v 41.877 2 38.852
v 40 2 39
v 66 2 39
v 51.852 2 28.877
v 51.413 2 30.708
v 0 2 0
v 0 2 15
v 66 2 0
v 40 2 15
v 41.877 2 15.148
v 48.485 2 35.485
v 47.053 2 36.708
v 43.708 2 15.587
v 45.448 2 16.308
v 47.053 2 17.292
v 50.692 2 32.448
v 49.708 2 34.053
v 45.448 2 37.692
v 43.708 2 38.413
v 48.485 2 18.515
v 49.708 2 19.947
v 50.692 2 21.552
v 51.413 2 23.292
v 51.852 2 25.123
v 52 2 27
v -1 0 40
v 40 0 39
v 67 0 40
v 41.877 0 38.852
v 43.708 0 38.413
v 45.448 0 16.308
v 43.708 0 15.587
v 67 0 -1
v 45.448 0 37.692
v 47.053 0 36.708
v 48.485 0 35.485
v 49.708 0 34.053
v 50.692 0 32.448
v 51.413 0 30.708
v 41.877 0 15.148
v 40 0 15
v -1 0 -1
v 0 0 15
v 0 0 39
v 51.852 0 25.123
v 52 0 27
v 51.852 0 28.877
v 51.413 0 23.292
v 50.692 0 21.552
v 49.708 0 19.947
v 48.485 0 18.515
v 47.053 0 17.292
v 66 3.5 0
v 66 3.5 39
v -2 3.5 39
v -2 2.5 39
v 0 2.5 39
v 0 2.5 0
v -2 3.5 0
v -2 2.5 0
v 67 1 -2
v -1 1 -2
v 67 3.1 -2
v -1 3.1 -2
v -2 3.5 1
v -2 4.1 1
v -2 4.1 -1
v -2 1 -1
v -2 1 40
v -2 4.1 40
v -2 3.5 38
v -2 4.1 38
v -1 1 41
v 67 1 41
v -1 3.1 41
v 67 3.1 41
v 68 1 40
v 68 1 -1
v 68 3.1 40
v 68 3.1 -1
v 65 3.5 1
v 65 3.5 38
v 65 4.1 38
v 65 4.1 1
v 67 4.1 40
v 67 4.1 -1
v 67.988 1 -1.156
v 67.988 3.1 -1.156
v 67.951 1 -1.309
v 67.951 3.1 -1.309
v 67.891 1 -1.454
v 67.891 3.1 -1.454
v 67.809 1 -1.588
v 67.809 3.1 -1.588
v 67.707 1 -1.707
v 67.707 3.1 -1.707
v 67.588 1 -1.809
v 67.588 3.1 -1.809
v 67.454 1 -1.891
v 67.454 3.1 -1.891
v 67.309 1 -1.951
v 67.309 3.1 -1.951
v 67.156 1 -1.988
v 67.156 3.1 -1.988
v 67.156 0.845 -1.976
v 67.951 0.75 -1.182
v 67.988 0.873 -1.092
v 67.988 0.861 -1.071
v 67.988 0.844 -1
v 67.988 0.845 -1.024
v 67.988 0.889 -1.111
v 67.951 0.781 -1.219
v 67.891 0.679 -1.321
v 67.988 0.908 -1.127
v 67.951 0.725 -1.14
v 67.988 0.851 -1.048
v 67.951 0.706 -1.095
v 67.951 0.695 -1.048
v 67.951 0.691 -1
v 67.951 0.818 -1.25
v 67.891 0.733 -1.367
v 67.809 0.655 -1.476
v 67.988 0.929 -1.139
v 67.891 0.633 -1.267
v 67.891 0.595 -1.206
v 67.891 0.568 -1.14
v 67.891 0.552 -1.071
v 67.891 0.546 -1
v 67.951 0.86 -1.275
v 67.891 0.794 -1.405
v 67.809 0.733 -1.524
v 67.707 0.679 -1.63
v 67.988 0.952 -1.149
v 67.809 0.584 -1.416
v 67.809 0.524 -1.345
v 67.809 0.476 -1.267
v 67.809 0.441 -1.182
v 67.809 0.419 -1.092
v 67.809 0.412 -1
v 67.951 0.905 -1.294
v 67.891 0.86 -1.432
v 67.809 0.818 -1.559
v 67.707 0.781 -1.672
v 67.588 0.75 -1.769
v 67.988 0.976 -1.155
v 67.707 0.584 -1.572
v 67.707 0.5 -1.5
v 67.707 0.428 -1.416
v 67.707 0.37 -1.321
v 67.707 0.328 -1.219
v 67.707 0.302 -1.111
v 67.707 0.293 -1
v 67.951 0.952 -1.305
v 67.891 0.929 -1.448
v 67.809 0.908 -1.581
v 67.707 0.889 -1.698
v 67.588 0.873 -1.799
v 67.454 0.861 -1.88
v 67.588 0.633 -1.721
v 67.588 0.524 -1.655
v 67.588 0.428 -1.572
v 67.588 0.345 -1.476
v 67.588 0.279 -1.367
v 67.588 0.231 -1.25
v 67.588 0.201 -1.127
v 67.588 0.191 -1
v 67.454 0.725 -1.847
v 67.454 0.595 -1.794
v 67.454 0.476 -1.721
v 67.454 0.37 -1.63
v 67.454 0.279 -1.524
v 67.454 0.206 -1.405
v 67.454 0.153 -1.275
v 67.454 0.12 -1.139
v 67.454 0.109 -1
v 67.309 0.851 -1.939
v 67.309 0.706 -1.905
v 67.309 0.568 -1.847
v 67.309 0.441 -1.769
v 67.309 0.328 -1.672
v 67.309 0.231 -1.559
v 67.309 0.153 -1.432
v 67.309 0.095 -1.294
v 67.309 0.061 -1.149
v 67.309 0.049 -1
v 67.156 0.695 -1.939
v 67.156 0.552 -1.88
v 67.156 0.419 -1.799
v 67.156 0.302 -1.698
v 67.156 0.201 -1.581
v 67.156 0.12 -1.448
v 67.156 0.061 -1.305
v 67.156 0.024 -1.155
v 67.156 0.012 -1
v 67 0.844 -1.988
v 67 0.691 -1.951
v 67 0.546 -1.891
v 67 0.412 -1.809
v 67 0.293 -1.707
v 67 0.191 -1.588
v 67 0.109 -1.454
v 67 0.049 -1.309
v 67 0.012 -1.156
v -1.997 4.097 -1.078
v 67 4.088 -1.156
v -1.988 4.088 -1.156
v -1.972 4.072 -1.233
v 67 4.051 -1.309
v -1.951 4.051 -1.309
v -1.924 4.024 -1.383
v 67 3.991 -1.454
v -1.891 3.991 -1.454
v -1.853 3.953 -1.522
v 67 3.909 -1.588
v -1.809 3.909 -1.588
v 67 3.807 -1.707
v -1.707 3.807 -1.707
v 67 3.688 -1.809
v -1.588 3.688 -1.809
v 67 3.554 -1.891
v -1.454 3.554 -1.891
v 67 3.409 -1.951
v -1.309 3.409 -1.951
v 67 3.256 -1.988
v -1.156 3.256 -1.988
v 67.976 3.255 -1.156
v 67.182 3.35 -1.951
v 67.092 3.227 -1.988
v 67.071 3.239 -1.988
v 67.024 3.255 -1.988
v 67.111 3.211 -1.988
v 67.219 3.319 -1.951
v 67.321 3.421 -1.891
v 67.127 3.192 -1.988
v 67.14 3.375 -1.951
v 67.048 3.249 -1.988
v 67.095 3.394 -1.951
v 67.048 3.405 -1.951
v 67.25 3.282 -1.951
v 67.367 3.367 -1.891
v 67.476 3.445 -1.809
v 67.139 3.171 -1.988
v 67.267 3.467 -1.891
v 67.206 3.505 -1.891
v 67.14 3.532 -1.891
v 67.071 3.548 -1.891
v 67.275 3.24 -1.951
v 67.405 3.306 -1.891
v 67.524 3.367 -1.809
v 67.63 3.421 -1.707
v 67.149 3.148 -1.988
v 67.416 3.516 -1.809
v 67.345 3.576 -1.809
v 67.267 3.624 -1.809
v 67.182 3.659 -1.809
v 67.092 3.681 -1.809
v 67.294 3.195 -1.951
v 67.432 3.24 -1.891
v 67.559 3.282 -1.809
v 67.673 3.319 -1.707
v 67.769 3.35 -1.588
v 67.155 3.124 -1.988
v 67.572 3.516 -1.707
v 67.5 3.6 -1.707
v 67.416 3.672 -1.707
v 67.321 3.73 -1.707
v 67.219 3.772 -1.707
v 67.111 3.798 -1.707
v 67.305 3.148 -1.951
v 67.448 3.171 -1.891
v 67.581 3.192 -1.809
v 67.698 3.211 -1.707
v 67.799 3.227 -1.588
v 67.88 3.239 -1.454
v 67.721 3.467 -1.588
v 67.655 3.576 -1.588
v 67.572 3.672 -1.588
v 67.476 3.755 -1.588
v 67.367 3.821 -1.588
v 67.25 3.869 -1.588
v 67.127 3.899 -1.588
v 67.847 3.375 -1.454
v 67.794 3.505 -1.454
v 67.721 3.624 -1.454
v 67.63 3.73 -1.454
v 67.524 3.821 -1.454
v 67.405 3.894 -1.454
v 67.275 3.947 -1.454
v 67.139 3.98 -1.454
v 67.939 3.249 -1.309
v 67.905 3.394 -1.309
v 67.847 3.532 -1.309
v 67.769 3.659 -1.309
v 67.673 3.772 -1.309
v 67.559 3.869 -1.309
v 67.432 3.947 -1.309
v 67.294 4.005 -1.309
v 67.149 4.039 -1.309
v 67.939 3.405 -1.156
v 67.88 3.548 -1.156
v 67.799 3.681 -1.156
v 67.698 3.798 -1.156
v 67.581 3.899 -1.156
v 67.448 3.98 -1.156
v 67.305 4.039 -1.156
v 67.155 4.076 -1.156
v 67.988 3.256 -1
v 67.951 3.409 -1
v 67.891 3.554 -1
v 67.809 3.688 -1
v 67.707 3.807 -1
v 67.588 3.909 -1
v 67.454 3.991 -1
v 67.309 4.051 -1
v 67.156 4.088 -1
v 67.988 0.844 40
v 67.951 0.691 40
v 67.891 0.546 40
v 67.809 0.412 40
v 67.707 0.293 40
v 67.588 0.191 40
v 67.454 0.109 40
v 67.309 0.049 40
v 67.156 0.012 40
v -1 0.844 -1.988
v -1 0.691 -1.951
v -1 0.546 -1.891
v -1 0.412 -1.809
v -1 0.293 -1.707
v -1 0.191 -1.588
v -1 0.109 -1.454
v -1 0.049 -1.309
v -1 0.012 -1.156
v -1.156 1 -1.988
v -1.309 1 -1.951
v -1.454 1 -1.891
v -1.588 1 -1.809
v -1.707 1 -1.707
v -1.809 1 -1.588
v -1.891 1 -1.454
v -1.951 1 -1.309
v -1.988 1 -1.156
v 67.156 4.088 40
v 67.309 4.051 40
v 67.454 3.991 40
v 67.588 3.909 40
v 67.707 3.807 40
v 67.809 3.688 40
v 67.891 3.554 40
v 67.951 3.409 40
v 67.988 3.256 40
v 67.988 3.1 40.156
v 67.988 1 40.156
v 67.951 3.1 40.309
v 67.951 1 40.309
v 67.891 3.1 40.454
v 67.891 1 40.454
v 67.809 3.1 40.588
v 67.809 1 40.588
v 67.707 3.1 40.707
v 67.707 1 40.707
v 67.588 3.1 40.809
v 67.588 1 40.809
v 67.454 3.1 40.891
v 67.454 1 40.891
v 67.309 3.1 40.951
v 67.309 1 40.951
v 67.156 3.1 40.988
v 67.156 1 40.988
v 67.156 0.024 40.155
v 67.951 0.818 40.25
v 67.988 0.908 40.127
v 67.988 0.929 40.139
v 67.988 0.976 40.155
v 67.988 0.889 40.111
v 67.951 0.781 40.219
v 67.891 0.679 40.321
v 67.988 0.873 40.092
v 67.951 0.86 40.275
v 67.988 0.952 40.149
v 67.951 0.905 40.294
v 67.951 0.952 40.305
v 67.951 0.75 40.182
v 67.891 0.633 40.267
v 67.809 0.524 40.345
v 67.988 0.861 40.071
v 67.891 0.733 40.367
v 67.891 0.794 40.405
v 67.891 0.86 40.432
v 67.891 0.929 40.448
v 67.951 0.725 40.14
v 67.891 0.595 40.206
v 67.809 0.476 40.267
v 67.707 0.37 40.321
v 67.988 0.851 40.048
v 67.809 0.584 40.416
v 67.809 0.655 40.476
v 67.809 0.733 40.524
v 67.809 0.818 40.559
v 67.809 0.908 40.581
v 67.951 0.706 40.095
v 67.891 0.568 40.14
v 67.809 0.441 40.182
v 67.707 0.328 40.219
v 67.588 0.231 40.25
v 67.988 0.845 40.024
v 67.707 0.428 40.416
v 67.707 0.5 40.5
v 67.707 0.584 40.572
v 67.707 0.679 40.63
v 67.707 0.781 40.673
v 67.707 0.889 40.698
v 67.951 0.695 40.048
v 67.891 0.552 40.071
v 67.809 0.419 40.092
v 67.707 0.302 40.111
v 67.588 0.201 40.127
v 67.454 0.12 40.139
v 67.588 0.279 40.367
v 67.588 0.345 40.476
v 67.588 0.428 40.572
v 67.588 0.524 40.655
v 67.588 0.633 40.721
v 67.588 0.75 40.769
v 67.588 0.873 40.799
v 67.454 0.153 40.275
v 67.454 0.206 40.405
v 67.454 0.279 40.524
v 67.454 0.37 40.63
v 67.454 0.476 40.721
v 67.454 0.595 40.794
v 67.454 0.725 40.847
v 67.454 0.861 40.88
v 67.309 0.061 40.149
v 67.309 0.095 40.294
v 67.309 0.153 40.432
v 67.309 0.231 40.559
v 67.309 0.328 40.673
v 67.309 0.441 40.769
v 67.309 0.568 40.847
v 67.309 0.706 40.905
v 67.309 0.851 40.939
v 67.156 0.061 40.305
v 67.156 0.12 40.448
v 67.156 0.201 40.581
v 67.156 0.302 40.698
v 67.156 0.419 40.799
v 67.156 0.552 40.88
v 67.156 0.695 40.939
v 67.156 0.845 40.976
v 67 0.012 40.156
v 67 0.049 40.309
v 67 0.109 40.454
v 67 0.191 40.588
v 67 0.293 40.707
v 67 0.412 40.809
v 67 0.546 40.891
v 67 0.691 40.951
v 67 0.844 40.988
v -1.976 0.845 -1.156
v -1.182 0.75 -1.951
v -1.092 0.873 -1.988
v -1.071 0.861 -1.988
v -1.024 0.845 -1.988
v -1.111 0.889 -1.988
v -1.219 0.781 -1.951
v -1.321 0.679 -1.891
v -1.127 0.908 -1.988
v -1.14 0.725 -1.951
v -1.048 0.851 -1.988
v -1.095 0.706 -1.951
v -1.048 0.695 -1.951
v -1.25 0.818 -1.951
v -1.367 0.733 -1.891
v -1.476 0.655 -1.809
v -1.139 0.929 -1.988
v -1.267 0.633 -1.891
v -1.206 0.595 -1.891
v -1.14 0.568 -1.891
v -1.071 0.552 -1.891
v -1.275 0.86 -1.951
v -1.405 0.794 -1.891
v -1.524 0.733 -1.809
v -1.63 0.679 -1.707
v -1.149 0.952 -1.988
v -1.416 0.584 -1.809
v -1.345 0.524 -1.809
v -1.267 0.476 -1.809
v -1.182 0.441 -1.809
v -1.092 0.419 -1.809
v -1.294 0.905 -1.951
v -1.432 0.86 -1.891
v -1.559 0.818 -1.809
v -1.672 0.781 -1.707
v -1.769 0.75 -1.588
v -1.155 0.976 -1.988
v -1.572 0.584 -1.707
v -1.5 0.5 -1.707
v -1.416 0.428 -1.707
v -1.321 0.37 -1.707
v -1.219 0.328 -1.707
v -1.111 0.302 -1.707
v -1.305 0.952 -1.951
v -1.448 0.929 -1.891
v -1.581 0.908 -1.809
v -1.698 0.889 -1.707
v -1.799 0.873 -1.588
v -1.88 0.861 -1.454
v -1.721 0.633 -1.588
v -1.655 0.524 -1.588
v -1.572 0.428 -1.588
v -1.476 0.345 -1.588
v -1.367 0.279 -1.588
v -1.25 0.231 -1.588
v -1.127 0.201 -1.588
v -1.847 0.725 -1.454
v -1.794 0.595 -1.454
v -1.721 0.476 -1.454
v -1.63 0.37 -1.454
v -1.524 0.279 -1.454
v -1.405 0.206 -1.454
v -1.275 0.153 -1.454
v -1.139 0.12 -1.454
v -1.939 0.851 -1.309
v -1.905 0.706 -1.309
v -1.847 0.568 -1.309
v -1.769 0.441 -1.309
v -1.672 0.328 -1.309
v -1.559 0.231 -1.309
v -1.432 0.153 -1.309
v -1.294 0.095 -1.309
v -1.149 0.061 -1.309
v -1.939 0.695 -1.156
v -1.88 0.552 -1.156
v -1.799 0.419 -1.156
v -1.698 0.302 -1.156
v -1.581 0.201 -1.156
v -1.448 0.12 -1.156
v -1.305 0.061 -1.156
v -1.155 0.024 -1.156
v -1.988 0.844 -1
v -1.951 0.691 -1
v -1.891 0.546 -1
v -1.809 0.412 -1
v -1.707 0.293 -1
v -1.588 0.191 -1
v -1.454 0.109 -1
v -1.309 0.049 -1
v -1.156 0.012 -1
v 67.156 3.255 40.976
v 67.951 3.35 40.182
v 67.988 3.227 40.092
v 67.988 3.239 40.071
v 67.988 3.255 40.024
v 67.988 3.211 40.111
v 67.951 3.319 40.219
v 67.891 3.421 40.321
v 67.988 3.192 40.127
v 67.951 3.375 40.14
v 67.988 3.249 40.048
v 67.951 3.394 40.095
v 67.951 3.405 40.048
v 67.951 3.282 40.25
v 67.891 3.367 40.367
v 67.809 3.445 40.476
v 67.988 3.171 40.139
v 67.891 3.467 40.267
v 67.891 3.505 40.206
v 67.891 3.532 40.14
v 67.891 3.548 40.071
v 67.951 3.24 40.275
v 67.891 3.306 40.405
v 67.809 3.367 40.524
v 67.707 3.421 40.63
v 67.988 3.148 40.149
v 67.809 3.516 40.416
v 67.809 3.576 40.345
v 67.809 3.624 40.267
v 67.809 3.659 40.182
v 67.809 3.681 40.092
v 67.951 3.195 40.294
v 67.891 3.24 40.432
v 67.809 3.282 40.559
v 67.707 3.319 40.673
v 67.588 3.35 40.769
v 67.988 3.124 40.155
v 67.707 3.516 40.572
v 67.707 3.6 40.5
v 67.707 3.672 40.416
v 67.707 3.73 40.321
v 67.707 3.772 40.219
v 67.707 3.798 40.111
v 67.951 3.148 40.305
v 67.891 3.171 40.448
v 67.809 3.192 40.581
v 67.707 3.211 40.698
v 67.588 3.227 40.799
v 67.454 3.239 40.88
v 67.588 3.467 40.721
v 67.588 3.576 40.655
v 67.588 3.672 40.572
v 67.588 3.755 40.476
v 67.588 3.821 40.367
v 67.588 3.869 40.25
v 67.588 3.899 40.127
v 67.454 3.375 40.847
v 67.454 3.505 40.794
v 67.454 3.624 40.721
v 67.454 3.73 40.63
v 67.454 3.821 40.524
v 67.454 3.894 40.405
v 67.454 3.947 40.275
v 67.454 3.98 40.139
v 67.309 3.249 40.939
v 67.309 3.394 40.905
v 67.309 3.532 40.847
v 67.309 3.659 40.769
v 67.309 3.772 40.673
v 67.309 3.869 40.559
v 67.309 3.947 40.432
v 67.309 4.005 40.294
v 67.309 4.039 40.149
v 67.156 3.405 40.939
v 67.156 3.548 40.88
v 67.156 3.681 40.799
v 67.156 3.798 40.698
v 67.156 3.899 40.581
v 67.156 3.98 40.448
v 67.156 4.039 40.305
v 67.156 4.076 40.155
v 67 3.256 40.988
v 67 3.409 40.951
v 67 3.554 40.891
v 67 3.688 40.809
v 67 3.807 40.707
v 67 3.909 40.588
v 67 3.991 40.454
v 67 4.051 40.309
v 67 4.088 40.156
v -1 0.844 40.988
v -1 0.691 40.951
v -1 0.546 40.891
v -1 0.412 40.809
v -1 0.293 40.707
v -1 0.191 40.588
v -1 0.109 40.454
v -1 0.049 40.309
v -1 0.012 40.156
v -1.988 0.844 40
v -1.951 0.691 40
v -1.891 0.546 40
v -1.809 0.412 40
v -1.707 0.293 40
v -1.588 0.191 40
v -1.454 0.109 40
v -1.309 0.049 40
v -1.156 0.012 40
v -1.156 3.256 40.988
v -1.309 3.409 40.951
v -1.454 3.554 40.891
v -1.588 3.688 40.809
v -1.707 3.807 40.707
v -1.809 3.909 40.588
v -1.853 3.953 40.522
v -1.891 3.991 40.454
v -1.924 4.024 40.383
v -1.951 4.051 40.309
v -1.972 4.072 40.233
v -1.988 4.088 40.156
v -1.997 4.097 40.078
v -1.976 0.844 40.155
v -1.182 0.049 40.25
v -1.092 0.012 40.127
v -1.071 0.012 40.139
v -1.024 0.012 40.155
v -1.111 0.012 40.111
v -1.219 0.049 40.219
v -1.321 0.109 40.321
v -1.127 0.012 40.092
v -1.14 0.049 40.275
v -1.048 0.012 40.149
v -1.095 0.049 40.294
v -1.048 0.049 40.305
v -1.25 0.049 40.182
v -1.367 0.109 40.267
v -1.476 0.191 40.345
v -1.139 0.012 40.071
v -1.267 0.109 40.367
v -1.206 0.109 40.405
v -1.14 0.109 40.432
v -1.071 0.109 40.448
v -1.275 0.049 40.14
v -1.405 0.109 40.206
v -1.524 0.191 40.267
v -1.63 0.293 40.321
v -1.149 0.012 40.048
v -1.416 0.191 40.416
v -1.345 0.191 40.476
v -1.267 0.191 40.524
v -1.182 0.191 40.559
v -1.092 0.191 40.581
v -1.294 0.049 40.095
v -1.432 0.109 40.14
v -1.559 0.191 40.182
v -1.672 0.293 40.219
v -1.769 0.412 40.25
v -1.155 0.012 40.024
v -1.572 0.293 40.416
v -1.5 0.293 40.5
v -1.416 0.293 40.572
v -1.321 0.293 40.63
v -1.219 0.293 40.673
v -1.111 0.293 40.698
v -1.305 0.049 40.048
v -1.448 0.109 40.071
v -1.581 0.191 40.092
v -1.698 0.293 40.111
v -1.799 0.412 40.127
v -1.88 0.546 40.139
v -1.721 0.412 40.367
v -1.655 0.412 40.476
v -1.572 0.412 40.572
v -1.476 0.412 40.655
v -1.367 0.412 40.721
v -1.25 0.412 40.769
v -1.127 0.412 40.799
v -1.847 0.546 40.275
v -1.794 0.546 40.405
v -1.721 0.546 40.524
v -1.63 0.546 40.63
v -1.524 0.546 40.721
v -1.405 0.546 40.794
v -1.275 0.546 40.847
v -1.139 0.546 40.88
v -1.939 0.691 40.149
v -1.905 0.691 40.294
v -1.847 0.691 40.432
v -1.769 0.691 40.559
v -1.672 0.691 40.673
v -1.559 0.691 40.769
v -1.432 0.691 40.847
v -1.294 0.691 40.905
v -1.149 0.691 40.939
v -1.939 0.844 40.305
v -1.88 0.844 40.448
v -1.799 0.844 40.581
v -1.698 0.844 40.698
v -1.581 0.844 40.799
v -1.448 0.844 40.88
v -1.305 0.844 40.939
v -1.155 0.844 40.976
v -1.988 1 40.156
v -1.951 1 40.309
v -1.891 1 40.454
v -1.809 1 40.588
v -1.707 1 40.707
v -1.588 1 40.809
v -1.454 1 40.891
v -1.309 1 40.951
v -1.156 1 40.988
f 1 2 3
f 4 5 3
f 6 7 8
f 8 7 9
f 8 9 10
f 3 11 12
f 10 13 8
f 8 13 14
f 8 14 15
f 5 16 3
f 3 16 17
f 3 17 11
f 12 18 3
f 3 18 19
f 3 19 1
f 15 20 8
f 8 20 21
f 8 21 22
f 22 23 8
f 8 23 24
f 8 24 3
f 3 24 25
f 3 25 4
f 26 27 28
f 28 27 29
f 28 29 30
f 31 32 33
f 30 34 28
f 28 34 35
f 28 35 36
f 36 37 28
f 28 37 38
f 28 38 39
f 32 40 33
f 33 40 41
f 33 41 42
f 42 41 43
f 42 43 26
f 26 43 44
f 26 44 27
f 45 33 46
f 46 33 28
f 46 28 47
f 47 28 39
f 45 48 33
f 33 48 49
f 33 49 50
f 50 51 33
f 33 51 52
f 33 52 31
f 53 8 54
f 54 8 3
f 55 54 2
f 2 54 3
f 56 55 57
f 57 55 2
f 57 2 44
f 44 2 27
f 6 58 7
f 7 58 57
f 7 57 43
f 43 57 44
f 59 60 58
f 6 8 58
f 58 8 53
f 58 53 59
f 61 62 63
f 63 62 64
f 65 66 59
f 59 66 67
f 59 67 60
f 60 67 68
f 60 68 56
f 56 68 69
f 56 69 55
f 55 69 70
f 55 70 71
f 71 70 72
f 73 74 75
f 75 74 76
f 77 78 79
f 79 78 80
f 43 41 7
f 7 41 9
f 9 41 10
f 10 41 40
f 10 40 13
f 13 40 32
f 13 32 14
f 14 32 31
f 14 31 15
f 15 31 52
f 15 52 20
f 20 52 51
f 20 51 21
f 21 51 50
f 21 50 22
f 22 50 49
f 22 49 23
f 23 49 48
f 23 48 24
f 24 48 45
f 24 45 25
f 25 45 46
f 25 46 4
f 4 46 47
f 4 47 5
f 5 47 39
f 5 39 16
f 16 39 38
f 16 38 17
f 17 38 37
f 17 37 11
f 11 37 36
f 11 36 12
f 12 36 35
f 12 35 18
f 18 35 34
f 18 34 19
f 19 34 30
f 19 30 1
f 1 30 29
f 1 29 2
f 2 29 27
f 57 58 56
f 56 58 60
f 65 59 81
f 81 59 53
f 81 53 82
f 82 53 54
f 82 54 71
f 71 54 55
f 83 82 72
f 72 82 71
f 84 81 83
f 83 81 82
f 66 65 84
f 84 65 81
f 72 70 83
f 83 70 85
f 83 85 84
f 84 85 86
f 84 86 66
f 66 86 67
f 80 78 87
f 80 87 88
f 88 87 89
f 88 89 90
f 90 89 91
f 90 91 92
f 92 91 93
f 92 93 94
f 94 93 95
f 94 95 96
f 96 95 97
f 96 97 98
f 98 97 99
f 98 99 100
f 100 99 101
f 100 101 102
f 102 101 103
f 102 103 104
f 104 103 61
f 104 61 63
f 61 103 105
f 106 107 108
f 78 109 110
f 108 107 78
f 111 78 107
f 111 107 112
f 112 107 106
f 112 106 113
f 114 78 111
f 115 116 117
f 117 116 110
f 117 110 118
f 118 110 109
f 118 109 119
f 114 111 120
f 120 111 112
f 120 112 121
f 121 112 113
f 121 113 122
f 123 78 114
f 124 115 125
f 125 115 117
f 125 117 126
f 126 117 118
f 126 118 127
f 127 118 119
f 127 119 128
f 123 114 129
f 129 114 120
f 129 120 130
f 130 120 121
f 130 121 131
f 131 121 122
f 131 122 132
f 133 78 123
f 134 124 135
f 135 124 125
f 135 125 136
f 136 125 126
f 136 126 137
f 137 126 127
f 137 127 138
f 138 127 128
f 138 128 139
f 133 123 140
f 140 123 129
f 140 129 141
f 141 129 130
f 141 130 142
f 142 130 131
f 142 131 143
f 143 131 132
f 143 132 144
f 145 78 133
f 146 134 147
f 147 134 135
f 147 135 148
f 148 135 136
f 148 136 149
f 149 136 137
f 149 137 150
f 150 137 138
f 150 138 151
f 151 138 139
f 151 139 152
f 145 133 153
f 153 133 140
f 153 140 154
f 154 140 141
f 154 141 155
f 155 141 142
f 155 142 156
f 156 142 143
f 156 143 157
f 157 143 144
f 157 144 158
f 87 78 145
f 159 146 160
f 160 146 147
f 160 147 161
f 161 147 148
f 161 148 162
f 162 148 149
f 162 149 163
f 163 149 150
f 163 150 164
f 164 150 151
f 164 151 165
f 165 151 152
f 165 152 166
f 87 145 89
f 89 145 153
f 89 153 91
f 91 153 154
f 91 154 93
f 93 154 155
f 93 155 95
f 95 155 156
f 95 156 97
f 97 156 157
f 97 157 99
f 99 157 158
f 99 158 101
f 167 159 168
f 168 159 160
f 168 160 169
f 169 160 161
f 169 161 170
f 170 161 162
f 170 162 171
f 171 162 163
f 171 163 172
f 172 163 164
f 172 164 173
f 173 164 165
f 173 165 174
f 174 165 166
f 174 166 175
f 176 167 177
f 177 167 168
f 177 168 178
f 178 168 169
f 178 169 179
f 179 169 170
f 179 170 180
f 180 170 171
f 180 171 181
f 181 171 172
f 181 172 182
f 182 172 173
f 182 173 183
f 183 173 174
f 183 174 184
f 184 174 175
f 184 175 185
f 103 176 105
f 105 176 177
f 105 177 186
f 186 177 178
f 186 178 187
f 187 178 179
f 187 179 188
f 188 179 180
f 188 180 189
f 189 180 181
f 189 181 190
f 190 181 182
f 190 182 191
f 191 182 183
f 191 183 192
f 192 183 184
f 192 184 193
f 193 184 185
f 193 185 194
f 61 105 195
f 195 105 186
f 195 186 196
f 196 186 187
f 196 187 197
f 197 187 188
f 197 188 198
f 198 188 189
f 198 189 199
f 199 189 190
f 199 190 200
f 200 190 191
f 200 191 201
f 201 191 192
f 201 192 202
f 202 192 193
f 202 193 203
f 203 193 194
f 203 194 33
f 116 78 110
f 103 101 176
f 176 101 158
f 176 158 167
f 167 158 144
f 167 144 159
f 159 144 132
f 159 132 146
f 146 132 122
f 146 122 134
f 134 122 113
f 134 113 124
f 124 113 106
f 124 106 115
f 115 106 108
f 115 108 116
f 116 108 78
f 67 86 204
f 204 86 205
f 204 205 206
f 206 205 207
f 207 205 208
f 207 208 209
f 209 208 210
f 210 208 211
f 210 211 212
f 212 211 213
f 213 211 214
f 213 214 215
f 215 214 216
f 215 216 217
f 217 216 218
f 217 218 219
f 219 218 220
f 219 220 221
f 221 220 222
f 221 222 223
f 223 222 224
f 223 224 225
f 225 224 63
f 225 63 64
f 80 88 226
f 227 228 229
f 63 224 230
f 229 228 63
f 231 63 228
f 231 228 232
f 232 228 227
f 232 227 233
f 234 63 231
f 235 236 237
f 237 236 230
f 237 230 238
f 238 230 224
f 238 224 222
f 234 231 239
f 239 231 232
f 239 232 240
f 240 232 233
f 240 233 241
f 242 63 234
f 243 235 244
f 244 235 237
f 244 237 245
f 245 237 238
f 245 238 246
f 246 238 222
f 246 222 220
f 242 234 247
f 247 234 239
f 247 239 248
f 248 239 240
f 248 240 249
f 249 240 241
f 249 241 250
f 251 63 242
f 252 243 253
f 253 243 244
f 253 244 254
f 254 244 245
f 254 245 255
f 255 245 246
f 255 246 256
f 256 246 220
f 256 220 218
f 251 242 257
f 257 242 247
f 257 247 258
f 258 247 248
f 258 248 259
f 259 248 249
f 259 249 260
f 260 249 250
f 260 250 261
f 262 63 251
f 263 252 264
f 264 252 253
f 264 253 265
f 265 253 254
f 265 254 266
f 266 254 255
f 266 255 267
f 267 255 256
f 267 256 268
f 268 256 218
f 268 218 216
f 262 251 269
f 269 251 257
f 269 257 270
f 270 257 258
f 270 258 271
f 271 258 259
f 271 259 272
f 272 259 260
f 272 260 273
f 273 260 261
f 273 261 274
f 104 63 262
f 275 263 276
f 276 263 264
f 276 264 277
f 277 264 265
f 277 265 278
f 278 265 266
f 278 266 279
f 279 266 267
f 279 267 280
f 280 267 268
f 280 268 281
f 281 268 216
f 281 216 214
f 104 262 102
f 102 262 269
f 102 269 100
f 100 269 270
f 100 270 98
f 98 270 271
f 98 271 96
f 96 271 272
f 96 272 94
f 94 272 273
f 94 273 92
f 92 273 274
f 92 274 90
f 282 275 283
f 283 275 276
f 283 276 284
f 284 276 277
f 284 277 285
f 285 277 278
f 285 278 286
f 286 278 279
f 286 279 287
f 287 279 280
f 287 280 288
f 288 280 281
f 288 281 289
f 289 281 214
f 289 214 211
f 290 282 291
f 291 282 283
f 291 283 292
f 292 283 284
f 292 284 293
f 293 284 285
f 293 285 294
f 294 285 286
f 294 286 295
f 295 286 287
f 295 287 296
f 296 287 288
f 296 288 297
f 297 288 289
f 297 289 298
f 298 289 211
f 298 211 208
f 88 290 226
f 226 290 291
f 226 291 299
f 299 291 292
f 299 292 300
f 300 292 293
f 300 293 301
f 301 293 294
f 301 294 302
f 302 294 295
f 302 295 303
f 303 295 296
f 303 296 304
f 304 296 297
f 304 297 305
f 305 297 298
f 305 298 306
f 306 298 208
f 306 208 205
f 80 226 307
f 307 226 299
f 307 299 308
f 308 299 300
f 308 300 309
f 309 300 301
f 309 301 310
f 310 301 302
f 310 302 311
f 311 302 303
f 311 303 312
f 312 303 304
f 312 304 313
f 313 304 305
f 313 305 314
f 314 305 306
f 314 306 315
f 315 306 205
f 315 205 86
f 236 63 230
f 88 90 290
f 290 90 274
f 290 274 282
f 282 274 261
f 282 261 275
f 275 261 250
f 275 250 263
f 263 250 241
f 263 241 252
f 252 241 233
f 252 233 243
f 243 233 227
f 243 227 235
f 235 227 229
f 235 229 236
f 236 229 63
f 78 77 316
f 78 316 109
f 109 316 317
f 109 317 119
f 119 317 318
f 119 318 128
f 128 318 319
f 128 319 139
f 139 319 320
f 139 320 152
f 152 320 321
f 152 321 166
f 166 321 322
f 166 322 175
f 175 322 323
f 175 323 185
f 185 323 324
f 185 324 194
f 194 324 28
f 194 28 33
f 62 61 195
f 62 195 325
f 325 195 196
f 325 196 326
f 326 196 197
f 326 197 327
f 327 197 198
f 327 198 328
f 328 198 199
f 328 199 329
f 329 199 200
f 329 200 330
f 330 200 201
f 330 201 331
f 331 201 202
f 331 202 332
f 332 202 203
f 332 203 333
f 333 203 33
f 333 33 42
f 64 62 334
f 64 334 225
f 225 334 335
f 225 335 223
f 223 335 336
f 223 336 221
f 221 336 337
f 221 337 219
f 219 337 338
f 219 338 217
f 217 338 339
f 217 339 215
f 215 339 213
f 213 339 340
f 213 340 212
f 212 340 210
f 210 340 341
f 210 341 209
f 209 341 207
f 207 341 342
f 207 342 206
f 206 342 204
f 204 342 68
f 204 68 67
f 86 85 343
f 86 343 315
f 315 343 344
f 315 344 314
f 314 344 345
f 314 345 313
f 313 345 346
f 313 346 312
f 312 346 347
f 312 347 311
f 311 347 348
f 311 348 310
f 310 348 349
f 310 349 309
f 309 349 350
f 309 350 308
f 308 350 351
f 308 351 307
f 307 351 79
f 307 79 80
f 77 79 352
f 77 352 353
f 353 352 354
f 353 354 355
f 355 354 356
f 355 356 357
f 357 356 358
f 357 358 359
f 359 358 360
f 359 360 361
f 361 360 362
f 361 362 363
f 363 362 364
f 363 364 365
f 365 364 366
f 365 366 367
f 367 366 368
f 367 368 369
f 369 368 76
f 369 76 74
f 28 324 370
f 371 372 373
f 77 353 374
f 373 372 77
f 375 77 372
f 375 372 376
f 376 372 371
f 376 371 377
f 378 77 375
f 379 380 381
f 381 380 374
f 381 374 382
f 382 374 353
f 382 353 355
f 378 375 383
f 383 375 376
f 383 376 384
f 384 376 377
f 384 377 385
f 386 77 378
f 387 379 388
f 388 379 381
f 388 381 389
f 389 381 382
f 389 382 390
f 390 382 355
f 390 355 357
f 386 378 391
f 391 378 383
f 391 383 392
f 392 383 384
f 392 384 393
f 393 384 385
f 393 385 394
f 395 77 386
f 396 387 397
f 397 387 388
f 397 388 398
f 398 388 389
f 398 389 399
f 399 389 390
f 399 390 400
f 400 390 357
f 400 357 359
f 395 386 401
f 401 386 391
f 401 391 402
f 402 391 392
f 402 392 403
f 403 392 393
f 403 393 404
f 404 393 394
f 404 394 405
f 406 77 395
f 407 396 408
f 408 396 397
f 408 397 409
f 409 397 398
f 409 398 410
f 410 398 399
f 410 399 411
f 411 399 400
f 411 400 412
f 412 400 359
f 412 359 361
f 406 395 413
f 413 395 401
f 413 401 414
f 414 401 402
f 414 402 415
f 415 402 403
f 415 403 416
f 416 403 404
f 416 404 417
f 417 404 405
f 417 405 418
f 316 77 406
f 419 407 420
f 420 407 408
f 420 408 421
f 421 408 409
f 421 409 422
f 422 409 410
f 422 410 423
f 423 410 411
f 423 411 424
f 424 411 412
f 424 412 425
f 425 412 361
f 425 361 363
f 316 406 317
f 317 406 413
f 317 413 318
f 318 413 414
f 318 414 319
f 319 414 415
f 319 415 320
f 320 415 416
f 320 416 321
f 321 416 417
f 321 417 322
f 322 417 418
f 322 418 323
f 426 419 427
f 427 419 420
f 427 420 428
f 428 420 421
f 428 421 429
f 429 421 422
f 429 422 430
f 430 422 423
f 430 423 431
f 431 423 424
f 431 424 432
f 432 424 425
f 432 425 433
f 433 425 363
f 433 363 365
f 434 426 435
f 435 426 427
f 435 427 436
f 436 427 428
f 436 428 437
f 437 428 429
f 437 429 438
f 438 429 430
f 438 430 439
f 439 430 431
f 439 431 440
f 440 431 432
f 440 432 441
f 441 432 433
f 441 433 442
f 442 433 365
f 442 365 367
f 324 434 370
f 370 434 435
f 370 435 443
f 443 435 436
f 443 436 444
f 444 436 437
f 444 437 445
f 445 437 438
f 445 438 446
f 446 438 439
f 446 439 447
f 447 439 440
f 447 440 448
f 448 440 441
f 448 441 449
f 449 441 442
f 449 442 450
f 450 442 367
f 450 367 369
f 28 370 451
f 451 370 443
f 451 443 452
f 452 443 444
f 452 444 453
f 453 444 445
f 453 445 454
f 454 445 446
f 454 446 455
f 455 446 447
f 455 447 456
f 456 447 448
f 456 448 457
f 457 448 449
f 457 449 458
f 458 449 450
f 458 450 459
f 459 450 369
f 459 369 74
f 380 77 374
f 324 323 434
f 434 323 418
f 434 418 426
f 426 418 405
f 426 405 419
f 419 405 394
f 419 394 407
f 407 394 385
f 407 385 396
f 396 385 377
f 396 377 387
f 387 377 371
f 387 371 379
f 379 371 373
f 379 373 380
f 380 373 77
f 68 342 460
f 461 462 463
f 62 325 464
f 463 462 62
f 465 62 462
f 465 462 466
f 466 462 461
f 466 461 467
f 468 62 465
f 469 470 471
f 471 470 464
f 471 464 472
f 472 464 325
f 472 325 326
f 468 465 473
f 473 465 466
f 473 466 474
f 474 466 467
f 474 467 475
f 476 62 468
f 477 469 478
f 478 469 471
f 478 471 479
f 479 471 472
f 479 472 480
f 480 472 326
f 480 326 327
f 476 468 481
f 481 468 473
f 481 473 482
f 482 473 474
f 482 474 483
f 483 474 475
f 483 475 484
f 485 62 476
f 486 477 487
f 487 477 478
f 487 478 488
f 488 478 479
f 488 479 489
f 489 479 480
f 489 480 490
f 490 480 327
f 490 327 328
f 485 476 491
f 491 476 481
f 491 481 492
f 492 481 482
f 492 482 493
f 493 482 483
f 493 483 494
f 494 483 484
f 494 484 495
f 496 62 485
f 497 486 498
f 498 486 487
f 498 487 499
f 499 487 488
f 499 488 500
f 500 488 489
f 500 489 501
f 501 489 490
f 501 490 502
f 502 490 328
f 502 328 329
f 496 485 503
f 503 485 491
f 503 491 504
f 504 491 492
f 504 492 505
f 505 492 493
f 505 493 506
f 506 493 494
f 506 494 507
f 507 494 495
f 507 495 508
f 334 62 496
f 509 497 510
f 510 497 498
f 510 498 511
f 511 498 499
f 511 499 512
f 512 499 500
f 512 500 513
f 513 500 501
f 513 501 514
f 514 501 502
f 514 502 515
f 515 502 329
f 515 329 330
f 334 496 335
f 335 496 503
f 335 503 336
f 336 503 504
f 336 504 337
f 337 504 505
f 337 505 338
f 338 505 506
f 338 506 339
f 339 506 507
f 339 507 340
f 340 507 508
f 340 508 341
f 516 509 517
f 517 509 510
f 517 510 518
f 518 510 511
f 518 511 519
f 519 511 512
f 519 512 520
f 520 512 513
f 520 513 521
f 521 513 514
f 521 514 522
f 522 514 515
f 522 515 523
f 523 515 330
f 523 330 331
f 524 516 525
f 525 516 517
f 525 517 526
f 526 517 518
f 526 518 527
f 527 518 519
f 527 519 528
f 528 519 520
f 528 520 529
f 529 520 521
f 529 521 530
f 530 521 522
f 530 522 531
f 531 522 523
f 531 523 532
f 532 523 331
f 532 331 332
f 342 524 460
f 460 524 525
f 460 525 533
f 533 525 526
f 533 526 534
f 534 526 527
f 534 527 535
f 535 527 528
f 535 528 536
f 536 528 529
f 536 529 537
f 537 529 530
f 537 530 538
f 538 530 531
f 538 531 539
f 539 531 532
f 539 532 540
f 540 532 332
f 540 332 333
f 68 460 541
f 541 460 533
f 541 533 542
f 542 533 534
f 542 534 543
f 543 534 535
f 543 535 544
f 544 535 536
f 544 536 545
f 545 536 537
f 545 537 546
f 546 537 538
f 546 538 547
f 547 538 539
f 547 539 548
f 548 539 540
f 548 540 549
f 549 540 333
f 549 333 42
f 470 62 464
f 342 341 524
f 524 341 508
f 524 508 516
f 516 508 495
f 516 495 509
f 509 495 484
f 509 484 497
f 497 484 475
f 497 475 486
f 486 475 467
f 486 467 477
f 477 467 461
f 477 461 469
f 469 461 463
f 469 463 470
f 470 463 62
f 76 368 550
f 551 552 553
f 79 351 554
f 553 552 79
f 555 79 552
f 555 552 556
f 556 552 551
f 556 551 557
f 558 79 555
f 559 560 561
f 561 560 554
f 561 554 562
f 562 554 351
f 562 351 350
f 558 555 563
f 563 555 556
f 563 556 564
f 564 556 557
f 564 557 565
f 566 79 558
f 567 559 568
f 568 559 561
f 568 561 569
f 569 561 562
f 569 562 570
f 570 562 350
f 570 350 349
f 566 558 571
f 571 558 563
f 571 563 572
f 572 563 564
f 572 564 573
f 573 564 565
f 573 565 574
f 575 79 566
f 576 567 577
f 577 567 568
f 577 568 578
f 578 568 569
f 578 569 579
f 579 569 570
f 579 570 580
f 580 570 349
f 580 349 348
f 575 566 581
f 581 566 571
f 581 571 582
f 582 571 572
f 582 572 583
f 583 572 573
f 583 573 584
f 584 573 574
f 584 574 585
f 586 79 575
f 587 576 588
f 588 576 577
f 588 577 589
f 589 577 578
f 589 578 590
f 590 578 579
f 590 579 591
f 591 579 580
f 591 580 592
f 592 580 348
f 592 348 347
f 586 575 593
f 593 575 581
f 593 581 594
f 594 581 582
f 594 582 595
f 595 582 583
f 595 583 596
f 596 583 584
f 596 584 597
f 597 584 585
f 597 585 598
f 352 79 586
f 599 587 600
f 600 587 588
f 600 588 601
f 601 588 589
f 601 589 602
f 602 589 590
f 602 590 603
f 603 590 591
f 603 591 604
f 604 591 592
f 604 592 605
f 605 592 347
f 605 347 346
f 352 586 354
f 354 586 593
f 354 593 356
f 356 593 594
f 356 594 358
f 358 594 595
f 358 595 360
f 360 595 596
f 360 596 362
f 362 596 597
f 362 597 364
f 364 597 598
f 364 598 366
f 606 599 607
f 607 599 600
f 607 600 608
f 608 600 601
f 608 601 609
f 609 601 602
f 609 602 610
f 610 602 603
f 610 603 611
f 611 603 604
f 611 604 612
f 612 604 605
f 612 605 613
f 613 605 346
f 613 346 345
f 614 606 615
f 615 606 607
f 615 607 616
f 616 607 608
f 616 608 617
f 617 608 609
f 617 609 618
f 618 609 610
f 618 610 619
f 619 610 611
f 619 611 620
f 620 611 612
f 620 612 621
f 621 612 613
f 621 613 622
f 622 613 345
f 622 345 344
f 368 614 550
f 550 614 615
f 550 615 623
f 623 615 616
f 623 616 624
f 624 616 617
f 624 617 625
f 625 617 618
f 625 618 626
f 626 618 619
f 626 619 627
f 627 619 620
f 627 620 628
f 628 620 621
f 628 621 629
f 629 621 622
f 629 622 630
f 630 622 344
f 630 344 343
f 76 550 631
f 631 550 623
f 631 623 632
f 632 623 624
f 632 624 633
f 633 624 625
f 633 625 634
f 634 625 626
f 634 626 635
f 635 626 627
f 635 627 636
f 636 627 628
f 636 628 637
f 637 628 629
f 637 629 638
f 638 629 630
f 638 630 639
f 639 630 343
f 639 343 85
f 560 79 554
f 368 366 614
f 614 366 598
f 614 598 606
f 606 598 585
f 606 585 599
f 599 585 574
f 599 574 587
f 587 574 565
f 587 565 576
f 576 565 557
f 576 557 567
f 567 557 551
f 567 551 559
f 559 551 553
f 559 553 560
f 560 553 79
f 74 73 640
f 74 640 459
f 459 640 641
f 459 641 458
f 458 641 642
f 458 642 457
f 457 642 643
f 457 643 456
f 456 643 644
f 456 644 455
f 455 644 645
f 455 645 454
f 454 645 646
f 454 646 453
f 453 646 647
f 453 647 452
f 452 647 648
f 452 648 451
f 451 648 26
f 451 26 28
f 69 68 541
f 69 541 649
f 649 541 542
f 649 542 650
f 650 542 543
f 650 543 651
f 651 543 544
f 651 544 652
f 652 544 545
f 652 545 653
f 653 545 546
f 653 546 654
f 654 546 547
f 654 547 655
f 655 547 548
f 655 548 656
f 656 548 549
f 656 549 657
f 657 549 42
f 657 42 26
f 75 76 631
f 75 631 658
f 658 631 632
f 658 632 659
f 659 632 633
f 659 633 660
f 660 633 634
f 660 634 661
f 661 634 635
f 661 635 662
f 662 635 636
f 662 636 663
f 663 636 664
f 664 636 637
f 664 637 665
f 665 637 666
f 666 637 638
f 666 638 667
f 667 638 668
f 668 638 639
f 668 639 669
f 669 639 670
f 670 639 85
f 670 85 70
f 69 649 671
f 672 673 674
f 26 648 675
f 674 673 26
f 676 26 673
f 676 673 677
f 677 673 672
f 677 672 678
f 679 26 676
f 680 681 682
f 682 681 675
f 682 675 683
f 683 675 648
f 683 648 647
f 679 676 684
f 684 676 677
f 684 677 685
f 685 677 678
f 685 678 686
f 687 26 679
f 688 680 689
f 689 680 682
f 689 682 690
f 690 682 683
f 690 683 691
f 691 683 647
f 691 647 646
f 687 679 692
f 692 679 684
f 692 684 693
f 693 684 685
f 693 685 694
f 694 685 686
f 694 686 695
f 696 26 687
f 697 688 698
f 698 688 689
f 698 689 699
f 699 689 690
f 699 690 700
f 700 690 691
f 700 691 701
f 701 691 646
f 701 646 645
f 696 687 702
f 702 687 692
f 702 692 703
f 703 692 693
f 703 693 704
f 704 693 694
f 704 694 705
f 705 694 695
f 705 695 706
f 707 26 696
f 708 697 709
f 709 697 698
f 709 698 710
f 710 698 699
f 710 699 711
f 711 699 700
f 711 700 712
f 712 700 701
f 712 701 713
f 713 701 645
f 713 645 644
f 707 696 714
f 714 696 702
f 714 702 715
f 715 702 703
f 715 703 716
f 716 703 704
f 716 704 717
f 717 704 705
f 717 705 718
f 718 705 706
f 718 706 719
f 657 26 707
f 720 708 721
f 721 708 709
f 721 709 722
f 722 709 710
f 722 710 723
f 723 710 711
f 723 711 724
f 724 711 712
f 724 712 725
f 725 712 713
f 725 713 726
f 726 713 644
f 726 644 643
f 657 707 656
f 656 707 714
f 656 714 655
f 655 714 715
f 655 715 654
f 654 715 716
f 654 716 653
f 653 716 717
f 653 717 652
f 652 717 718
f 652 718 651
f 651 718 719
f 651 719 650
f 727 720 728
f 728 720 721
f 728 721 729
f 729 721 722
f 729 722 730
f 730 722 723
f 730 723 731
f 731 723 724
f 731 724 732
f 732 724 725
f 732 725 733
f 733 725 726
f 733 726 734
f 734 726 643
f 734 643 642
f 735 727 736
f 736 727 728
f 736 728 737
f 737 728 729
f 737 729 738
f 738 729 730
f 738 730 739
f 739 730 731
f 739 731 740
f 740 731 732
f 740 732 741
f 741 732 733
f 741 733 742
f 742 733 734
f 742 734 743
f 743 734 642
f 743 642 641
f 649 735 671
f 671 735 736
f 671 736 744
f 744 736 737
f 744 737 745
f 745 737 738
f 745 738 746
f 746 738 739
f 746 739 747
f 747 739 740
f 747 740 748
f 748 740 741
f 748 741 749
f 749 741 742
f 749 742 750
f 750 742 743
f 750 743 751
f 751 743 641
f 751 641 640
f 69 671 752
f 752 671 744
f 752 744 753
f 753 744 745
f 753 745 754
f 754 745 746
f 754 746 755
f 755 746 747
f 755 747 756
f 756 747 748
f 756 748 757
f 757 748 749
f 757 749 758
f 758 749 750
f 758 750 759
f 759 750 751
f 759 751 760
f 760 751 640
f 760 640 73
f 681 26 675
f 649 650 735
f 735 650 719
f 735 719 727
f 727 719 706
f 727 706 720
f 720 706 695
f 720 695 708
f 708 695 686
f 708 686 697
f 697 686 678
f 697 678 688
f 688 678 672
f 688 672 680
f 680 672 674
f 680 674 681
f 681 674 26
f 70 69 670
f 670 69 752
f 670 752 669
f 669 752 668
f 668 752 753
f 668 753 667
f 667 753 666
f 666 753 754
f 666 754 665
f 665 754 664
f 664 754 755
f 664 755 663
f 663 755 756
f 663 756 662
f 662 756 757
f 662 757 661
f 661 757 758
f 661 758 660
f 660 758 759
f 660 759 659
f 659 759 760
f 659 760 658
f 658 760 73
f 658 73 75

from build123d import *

# Parameters (mm, degrees)
BOSS_EXTRUDE1_DEPTH = 2
SKETCH1_3_W         = 70
SKETCH1_3_H         = 43
BOSS_EXTRUDE2_DEPTH = 4
SKETCH1_5_W         = 40
SKETCH1_5_H         = 24
CUT_EXTRUDE4_DEPTH  = 2
CUT_EXTRUDE5_REACH  = 81.505
SKETCH2_W           = 39
SKETCH2_H           = 1.5
BOSS_EXTRUDE3_START = -0.5
BOSS_EXTRUDE3_DEPTH = 0.6
FILLET1_R           = 1


with BuildPart() as part:
    # Sketch1 → Boss-Extrude1 (new body)
    with BuildSketch(Plane(origin=(0, 0, 0), x_dir=(1, 0, 0), z_dir=(0, 1, 0))):
        Polygon((0, 0), (64, 0), (66, 0), (66, -1), (66, -38), (66, -39), (64, -39), (0, -39), align=None)
    extrude(amount=BOSS_EXTRUDE1_DEPTH)

    # Sketch1<3> → Boss-Extrude2 (add)
    with BuildSketch(Plane(origin=(0, 0, 0), x_dir=(1, 0, 0), z_dir=(0, 1, 0))):
        with Locations((33, -19.5)):
            Rectangle(SKETCH1_3_W, SKETCH1_3_H)
        Polygon((0, 0), (64, 0), (66, 0), (66, -1), (66, -38), (66, -39), (64, -39), (0, -39), align=None, mode=Mode.SUBTRACT)
    extrude(amount=BOSS_EXTRUDE2_DEPTH)

    # Sketch1<5> → Cut-Extrude4 (cut)
    with BuildSketch(Plane(origin=(0, 0, 0), x_dir=(1, 0, 0), z_dir=(0, 1, 0))):
        with Locations((20, -27)):
            Rectangle(SKETCH1_5_W, SKETCH1_5_H)
        with BuildLine():
            ThreePointArc((40, -15), (52, -27), (40, -39))
            Line((40, -39), (40, -15))
        make_face()
    extrude(amount=CUT_EXTRUDE4_DEPTH, mode=Mode.SUBTRACT)

    # Sketch2 → Cut-Extrude5 (cut, up to next)
    with BuildSketch(Plane(origin=(0, 0, 0), x_dir=(0, 0, -1), z_dir=(1, 0, 0)), mode=Mode.PRIVATE) as cut_extrude5_sk1:
        with Locations((-19.5, 3.25)):
            Rectangle(SKETCH2_W, SKETCH2_H)
    cut_extrude5_tool1 = extrude(cut_extrude5_sk1.sketch, amount=-CUT_EXTRUDE5_REACH, mode=Mode.PRIVATE) & part.part
    add(cut_extrude5_tool1.solids().sort_by_distance((0, 3.25, 19.5))[0], mode=Mode.SUBTRACT)

    # Sketch3 → Boss-Extrude3 (add)
    with BuildSketch(Plane(origin=(0, 4, 0), x_dir=(1, 0, 0), z_dir=(0, 1, 0)).offset(BOSS_EXTRUDE3_START)):
        Polygon((-2, -41), (68, -41), (68, 2), (-2, 2), (-2, -1), (65, -1), (65, -38), (-2, -38), align=None)
    extrude(amount=BOSS_EXTRUDE3_DEPTH)

    # Fillet1
    fillet1_edges = [part.edges().sort_by_distance(p)[0] for p in [
        (68, 2.05, -2),
        (-2, 0, 19.5),
        (-2, 2.05, -2),
        (33, 0, 41),
        (-2, 2.05, 41),
        (68, 2.05, 41),
        (33, 0, -2),
        (68, 0, 19.5),
        (33, 4.1, 41),
        (68, 4.1, 19.5),
        (33, 4.1, -2),
    ]]
    fillet(fillet1_edges, radius=FILLET1_R)


solid = part.part
